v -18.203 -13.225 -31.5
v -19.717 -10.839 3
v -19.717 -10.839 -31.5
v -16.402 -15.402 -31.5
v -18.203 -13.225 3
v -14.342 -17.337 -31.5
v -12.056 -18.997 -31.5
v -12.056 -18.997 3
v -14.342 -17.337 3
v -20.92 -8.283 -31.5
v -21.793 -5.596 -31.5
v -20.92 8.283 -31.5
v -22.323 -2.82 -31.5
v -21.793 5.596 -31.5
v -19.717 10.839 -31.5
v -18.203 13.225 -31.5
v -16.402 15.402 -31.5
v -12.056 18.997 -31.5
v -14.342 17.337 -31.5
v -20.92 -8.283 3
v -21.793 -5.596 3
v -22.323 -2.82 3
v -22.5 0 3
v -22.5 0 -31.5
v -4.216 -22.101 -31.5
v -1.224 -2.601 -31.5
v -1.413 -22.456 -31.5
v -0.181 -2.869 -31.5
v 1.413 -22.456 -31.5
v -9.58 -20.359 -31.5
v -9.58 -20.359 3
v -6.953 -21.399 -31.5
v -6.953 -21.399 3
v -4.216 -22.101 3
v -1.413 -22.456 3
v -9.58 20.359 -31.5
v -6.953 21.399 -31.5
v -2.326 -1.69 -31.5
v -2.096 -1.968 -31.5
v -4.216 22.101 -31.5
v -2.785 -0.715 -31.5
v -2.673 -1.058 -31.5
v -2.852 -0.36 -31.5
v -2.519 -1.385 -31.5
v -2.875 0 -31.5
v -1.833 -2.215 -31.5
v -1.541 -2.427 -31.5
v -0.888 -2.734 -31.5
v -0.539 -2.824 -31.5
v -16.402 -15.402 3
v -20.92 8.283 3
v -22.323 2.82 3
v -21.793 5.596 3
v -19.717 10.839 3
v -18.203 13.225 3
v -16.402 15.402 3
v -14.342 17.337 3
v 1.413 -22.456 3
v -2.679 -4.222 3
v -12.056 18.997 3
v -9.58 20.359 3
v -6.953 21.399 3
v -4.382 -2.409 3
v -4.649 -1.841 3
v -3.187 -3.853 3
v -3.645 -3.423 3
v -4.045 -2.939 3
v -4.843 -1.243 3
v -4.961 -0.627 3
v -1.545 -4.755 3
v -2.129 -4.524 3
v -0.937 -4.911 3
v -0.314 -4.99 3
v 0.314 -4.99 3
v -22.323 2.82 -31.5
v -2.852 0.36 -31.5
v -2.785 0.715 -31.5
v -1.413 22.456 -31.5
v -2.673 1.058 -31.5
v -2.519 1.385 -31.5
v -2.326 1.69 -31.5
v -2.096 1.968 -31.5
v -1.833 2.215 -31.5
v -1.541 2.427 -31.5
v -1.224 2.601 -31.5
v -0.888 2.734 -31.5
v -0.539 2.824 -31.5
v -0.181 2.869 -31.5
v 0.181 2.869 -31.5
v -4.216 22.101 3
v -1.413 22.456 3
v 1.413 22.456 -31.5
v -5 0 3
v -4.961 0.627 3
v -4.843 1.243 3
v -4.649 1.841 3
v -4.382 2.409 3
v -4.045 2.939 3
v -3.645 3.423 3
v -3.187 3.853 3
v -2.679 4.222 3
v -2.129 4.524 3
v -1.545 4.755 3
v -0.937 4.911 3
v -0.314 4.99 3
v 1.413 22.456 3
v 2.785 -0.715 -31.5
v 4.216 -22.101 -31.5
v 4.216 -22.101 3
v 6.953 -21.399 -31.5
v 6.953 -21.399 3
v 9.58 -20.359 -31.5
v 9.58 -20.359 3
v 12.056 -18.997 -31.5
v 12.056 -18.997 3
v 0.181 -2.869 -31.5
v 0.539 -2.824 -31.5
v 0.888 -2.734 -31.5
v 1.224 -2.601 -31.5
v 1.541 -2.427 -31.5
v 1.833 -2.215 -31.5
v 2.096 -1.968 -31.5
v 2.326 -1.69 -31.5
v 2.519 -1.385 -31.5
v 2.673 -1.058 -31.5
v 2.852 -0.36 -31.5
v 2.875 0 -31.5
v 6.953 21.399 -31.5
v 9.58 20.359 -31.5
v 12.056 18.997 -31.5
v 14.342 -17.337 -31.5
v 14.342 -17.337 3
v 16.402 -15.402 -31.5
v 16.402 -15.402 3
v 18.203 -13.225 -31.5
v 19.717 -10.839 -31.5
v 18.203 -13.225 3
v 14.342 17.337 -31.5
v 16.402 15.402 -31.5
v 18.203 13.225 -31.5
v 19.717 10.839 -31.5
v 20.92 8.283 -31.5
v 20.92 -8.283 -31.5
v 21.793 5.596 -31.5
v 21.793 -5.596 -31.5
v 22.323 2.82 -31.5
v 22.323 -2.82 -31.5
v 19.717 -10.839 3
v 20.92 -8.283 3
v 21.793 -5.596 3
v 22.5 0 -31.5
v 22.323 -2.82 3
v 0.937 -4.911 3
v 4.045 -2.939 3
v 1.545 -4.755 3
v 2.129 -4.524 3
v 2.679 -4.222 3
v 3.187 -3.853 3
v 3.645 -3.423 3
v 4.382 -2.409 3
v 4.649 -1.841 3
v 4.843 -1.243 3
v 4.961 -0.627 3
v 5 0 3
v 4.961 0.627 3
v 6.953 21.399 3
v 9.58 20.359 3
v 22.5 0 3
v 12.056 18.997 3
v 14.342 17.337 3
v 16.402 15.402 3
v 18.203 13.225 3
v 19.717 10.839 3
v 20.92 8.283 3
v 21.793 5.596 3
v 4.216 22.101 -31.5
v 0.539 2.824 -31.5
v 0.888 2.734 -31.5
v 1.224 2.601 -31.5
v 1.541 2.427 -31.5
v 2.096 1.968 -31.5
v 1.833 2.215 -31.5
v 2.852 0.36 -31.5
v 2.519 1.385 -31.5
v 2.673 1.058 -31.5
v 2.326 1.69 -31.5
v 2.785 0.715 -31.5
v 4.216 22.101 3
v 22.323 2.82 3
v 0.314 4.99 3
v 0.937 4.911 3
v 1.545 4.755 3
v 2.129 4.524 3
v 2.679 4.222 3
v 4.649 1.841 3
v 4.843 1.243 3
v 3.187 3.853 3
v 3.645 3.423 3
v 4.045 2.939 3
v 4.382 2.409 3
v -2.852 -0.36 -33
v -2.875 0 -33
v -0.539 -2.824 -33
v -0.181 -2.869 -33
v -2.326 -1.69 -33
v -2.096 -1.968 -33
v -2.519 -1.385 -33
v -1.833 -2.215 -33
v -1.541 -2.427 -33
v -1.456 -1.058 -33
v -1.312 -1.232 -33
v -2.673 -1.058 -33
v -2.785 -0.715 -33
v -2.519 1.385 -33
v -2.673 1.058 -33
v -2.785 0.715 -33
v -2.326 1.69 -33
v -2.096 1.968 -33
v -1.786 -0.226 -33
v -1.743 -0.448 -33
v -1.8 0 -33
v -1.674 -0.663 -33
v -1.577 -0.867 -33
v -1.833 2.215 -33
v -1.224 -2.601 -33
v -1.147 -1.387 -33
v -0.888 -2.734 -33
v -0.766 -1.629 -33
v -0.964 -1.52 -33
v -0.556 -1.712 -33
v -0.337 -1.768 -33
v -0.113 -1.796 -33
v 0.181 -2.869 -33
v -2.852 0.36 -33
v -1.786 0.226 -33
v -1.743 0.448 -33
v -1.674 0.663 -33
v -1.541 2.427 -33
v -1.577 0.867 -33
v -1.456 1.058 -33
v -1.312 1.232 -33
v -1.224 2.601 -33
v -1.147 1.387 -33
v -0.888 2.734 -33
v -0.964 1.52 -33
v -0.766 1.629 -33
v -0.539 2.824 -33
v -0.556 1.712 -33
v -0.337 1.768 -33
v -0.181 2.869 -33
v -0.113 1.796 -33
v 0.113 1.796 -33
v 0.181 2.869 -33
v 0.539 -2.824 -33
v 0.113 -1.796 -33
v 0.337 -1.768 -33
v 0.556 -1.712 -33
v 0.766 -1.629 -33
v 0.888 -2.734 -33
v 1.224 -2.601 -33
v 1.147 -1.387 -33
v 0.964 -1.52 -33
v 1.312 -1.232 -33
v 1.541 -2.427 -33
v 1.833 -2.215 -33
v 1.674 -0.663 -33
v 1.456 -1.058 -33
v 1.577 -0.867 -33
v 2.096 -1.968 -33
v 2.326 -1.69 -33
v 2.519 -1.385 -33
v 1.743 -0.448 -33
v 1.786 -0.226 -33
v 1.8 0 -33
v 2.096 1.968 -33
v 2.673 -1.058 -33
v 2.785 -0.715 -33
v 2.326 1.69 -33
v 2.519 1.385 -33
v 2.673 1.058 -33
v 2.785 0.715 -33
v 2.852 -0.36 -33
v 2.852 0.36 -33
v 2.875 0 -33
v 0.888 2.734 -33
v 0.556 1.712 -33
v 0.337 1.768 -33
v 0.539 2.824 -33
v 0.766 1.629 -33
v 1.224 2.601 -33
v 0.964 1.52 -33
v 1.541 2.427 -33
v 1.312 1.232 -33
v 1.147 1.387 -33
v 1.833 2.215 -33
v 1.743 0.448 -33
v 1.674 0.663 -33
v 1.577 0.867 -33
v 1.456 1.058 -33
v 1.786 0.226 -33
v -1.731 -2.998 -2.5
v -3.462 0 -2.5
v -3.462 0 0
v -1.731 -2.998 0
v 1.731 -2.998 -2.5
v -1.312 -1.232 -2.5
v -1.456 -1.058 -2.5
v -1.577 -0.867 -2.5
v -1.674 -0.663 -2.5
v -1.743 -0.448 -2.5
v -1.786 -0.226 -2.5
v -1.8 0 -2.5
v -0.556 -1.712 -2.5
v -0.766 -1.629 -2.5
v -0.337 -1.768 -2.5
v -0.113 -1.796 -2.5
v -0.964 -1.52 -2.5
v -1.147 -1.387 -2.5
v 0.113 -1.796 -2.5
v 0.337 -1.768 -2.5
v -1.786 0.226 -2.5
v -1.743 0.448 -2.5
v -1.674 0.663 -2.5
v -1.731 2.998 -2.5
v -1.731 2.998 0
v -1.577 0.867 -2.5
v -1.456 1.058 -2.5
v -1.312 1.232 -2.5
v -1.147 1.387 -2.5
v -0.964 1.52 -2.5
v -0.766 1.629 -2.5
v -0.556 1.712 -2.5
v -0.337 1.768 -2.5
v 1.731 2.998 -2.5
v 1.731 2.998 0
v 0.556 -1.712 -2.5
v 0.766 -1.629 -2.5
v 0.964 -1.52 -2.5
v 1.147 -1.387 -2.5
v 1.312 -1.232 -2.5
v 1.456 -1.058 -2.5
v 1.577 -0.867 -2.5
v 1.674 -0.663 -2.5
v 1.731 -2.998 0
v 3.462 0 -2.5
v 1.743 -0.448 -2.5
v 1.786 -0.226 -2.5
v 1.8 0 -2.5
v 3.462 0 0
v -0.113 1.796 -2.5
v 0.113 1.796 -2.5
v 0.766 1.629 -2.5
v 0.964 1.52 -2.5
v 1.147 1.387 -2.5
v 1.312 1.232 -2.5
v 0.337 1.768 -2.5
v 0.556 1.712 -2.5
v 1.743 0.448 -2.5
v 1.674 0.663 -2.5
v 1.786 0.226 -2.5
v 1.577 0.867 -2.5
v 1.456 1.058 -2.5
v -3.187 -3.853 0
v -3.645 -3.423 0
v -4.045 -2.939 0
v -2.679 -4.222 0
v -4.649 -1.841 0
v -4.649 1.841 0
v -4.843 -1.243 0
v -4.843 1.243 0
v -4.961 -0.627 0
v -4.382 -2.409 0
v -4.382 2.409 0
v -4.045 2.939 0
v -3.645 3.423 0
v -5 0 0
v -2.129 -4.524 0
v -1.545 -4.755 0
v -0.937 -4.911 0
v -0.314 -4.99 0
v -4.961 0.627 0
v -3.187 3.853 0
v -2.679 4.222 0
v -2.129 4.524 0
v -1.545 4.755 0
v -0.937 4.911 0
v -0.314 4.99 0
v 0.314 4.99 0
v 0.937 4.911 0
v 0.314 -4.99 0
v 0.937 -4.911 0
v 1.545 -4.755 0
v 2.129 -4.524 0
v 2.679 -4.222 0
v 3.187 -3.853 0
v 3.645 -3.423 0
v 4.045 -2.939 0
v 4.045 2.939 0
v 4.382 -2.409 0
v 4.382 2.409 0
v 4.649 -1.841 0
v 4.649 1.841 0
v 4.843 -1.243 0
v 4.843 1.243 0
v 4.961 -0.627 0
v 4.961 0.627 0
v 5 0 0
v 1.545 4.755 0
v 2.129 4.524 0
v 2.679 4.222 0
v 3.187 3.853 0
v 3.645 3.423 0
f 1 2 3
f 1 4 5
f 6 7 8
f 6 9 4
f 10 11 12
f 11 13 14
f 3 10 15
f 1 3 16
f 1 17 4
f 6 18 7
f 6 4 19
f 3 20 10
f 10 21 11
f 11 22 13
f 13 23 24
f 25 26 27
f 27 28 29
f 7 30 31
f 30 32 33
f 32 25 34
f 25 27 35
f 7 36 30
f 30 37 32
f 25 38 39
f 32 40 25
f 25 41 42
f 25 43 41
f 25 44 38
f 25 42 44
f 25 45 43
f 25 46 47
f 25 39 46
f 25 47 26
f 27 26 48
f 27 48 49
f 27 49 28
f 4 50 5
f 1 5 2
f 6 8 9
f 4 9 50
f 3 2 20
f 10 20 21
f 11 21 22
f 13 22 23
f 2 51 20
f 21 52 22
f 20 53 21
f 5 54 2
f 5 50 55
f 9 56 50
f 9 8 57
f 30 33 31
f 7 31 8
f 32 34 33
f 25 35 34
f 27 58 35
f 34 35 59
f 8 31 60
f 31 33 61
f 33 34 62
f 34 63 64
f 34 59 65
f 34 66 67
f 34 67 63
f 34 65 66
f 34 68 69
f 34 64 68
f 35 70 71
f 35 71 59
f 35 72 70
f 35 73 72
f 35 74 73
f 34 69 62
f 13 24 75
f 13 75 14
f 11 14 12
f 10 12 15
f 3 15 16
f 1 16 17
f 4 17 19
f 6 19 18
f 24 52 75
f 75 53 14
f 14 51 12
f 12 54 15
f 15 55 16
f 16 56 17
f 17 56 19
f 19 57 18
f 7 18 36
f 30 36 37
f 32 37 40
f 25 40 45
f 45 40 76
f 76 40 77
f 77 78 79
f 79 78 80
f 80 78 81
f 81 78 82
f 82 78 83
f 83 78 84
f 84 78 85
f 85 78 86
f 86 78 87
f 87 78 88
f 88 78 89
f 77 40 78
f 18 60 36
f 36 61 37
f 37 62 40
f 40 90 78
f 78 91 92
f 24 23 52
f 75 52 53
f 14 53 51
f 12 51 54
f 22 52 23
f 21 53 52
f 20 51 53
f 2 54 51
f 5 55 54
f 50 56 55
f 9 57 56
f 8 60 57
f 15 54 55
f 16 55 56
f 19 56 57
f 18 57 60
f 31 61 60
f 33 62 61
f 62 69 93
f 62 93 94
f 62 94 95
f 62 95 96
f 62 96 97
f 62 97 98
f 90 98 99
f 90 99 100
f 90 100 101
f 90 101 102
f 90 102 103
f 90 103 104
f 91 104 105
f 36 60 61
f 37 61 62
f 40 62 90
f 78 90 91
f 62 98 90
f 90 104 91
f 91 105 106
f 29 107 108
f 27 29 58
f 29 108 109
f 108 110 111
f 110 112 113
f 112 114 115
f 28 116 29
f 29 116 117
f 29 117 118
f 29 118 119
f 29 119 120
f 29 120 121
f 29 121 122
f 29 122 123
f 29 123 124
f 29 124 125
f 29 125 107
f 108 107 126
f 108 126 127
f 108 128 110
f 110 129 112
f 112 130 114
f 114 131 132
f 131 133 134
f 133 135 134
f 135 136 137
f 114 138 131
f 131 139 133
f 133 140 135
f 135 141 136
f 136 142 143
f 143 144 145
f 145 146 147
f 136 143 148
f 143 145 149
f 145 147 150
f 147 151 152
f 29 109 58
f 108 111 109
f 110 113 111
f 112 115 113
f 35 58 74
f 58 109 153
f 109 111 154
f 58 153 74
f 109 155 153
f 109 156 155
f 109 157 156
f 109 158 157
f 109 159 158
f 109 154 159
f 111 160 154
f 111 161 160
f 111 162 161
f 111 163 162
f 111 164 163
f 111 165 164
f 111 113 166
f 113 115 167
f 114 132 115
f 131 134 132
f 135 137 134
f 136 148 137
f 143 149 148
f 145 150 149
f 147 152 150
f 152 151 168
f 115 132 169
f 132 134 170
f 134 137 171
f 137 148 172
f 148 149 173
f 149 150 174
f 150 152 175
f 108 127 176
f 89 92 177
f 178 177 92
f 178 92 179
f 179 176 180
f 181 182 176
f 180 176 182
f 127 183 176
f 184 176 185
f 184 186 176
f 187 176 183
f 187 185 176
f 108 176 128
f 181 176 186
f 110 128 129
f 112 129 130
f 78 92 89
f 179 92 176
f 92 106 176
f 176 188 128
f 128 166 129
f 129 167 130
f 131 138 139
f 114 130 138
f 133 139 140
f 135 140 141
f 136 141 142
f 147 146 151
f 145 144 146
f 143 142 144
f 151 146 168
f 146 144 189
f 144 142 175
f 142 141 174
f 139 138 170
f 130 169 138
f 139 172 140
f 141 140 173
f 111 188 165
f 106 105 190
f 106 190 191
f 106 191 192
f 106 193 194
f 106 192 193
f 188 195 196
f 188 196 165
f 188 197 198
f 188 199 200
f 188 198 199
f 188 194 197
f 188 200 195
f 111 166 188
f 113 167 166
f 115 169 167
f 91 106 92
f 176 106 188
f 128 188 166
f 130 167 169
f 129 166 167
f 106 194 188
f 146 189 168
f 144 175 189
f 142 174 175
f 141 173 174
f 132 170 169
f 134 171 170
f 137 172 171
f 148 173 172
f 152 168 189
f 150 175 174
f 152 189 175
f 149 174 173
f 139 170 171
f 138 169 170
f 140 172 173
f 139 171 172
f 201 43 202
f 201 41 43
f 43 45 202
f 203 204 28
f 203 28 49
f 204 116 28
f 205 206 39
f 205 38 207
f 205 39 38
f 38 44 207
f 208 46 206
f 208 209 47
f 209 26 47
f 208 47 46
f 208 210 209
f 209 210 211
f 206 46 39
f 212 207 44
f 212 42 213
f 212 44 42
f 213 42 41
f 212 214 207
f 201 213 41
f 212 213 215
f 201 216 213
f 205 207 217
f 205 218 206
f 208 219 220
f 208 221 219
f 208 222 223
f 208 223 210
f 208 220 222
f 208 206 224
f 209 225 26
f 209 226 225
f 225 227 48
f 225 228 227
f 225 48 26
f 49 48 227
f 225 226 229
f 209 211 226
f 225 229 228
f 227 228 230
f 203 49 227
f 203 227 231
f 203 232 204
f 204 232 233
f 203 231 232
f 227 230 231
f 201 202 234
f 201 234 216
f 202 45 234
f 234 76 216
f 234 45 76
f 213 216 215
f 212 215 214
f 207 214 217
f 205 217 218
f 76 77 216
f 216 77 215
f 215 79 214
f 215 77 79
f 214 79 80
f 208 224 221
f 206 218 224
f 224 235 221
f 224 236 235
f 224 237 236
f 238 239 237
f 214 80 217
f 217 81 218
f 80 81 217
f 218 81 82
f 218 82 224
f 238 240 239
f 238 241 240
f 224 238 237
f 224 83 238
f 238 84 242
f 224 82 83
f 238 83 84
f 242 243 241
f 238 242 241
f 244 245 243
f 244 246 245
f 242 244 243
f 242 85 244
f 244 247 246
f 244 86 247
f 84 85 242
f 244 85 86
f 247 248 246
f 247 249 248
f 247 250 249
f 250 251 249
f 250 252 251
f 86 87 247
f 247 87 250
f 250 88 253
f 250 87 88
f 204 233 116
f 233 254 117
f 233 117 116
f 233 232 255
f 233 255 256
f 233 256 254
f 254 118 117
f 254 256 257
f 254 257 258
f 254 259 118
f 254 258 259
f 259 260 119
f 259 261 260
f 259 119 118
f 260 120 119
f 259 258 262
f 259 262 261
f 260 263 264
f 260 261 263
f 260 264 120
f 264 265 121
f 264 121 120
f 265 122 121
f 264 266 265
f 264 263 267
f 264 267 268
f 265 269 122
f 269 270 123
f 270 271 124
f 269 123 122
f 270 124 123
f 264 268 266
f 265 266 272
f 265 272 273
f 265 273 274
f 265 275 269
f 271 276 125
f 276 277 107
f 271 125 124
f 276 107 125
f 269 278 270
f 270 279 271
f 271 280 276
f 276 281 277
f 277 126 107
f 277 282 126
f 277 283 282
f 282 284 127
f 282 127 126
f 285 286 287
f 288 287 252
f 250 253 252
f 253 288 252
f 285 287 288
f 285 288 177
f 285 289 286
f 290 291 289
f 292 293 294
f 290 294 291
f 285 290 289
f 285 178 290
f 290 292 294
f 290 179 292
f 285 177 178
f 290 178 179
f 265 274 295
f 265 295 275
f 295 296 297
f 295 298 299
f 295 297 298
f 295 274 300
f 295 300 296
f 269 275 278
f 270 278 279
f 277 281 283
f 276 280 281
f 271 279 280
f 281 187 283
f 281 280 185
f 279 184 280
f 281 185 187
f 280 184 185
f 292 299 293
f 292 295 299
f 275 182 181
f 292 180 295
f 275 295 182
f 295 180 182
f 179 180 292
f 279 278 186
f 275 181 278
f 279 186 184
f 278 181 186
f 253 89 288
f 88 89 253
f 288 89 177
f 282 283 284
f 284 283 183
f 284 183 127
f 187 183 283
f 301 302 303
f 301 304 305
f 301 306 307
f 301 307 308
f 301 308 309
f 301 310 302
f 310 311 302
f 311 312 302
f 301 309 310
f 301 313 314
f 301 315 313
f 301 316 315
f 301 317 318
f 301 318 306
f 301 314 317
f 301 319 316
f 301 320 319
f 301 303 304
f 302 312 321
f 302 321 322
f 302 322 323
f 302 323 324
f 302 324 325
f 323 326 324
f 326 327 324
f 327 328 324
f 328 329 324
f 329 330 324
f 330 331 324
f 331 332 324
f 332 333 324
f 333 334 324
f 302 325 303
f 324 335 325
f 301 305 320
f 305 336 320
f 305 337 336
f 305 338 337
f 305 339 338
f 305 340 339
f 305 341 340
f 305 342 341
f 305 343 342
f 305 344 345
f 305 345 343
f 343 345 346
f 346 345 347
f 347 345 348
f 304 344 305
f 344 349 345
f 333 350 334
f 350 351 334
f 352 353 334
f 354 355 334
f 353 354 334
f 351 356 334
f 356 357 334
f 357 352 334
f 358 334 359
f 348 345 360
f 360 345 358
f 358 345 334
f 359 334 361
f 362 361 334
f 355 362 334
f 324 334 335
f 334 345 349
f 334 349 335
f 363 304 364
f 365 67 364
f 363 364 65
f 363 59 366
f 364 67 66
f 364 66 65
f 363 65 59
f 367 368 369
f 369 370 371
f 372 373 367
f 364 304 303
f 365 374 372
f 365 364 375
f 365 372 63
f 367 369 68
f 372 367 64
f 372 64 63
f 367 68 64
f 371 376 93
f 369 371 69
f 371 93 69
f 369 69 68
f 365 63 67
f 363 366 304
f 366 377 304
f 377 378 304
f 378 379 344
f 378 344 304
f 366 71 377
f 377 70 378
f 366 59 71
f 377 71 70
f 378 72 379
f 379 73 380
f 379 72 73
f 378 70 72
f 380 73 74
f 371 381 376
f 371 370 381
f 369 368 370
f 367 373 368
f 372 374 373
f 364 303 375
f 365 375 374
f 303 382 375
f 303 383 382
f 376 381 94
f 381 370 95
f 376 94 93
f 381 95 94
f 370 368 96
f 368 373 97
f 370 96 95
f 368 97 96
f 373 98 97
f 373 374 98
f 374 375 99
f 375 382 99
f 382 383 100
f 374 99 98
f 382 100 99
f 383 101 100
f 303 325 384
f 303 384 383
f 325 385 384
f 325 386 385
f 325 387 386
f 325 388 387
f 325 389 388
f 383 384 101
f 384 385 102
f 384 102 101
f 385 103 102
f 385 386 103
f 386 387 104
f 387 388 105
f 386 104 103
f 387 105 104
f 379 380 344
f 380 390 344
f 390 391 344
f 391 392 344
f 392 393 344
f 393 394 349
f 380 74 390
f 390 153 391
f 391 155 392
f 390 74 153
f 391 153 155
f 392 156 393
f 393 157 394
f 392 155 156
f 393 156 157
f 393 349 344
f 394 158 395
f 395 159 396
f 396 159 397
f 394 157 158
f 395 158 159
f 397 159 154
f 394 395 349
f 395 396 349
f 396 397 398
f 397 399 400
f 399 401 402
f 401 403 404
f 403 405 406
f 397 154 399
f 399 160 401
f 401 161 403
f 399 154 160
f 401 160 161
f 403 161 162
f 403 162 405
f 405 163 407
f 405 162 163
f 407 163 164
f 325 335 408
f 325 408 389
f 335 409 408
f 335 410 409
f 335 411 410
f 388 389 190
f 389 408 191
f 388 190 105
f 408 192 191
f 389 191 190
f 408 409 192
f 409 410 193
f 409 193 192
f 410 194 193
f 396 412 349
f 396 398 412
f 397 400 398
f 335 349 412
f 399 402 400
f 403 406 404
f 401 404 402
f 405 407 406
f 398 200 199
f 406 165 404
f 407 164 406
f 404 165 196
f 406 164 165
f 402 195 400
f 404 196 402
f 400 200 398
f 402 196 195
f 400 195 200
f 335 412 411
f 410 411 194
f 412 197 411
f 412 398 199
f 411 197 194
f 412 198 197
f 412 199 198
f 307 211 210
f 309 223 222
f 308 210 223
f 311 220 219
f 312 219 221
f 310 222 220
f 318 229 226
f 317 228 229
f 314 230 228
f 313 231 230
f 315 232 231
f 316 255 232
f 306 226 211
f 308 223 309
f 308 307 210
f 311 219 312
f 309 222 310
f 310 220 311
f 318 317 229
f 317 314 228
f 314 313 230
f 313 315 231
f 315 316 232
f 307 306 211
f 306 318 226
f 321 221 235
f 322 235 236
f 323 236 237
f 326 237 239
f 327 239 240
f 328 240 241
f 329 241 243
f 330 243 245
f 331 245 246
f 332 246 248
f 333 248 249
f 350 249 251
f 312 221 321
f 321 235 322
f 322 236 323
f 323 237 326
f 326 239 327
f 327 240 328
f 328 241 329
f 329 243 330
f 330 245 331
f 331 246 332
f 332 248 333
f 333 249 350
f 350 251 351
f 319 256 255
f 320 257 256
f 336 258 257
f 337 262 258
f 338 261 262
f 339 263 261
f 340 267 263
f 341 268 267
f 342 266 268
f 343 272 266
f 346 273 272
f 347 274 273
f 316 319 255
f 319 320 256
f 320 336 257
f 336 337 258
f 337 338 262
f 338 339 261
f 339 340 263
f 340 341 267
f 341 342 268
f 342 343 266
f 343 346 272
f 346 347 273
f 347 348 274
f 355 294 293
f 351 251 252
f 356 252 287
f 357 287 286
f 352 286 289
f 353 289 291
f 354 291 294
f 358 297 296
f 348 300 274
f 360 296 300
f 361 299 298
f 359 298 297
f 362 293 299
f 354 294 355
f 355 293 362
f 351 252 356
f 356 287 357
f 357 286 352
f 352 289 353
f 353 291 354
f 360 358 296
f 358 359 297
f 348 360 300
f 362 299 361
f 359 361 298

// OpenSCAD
$fn = 50;


difference() {
	union() {
		translate(v = [0, 0, -31.5000000000]) {
			cylinder(h = 34.5000000000, r = 22.5000000000);
		}
		#translate(v = [0, 0, -33.0000000000]) {
			cylinder(h = 33, r = 2.8750000000);
		}
	}
	union() {
		translate(v = [0, 0, 0]) {
			rotate(a = [0, 0, 0]) {
				difference() {
					union() {
						translate(v = [0, 0, -2.5000000000]) {
							linear_extrude(height = 2.5000000000) {
								polygon(points = [[3.4620000000, 0.0000000000], [1.7310000000, 2.9981799479], [-1.7310000000, 2.9981799479], [-3.4620000000, 0.0000000000], [-1.7310000000, -2.9981799479], [1.7310000000, -2.9981799479]]);
							}
						}
					}
					union();
				}
			}
		}
		#cylinder(h = 3, r = 5.0000000000);
		#translate(v = [0, 0, -100.0000000000]) {
			cylinder(h = 200, r = 1.8000000000);
		}
	}
}
